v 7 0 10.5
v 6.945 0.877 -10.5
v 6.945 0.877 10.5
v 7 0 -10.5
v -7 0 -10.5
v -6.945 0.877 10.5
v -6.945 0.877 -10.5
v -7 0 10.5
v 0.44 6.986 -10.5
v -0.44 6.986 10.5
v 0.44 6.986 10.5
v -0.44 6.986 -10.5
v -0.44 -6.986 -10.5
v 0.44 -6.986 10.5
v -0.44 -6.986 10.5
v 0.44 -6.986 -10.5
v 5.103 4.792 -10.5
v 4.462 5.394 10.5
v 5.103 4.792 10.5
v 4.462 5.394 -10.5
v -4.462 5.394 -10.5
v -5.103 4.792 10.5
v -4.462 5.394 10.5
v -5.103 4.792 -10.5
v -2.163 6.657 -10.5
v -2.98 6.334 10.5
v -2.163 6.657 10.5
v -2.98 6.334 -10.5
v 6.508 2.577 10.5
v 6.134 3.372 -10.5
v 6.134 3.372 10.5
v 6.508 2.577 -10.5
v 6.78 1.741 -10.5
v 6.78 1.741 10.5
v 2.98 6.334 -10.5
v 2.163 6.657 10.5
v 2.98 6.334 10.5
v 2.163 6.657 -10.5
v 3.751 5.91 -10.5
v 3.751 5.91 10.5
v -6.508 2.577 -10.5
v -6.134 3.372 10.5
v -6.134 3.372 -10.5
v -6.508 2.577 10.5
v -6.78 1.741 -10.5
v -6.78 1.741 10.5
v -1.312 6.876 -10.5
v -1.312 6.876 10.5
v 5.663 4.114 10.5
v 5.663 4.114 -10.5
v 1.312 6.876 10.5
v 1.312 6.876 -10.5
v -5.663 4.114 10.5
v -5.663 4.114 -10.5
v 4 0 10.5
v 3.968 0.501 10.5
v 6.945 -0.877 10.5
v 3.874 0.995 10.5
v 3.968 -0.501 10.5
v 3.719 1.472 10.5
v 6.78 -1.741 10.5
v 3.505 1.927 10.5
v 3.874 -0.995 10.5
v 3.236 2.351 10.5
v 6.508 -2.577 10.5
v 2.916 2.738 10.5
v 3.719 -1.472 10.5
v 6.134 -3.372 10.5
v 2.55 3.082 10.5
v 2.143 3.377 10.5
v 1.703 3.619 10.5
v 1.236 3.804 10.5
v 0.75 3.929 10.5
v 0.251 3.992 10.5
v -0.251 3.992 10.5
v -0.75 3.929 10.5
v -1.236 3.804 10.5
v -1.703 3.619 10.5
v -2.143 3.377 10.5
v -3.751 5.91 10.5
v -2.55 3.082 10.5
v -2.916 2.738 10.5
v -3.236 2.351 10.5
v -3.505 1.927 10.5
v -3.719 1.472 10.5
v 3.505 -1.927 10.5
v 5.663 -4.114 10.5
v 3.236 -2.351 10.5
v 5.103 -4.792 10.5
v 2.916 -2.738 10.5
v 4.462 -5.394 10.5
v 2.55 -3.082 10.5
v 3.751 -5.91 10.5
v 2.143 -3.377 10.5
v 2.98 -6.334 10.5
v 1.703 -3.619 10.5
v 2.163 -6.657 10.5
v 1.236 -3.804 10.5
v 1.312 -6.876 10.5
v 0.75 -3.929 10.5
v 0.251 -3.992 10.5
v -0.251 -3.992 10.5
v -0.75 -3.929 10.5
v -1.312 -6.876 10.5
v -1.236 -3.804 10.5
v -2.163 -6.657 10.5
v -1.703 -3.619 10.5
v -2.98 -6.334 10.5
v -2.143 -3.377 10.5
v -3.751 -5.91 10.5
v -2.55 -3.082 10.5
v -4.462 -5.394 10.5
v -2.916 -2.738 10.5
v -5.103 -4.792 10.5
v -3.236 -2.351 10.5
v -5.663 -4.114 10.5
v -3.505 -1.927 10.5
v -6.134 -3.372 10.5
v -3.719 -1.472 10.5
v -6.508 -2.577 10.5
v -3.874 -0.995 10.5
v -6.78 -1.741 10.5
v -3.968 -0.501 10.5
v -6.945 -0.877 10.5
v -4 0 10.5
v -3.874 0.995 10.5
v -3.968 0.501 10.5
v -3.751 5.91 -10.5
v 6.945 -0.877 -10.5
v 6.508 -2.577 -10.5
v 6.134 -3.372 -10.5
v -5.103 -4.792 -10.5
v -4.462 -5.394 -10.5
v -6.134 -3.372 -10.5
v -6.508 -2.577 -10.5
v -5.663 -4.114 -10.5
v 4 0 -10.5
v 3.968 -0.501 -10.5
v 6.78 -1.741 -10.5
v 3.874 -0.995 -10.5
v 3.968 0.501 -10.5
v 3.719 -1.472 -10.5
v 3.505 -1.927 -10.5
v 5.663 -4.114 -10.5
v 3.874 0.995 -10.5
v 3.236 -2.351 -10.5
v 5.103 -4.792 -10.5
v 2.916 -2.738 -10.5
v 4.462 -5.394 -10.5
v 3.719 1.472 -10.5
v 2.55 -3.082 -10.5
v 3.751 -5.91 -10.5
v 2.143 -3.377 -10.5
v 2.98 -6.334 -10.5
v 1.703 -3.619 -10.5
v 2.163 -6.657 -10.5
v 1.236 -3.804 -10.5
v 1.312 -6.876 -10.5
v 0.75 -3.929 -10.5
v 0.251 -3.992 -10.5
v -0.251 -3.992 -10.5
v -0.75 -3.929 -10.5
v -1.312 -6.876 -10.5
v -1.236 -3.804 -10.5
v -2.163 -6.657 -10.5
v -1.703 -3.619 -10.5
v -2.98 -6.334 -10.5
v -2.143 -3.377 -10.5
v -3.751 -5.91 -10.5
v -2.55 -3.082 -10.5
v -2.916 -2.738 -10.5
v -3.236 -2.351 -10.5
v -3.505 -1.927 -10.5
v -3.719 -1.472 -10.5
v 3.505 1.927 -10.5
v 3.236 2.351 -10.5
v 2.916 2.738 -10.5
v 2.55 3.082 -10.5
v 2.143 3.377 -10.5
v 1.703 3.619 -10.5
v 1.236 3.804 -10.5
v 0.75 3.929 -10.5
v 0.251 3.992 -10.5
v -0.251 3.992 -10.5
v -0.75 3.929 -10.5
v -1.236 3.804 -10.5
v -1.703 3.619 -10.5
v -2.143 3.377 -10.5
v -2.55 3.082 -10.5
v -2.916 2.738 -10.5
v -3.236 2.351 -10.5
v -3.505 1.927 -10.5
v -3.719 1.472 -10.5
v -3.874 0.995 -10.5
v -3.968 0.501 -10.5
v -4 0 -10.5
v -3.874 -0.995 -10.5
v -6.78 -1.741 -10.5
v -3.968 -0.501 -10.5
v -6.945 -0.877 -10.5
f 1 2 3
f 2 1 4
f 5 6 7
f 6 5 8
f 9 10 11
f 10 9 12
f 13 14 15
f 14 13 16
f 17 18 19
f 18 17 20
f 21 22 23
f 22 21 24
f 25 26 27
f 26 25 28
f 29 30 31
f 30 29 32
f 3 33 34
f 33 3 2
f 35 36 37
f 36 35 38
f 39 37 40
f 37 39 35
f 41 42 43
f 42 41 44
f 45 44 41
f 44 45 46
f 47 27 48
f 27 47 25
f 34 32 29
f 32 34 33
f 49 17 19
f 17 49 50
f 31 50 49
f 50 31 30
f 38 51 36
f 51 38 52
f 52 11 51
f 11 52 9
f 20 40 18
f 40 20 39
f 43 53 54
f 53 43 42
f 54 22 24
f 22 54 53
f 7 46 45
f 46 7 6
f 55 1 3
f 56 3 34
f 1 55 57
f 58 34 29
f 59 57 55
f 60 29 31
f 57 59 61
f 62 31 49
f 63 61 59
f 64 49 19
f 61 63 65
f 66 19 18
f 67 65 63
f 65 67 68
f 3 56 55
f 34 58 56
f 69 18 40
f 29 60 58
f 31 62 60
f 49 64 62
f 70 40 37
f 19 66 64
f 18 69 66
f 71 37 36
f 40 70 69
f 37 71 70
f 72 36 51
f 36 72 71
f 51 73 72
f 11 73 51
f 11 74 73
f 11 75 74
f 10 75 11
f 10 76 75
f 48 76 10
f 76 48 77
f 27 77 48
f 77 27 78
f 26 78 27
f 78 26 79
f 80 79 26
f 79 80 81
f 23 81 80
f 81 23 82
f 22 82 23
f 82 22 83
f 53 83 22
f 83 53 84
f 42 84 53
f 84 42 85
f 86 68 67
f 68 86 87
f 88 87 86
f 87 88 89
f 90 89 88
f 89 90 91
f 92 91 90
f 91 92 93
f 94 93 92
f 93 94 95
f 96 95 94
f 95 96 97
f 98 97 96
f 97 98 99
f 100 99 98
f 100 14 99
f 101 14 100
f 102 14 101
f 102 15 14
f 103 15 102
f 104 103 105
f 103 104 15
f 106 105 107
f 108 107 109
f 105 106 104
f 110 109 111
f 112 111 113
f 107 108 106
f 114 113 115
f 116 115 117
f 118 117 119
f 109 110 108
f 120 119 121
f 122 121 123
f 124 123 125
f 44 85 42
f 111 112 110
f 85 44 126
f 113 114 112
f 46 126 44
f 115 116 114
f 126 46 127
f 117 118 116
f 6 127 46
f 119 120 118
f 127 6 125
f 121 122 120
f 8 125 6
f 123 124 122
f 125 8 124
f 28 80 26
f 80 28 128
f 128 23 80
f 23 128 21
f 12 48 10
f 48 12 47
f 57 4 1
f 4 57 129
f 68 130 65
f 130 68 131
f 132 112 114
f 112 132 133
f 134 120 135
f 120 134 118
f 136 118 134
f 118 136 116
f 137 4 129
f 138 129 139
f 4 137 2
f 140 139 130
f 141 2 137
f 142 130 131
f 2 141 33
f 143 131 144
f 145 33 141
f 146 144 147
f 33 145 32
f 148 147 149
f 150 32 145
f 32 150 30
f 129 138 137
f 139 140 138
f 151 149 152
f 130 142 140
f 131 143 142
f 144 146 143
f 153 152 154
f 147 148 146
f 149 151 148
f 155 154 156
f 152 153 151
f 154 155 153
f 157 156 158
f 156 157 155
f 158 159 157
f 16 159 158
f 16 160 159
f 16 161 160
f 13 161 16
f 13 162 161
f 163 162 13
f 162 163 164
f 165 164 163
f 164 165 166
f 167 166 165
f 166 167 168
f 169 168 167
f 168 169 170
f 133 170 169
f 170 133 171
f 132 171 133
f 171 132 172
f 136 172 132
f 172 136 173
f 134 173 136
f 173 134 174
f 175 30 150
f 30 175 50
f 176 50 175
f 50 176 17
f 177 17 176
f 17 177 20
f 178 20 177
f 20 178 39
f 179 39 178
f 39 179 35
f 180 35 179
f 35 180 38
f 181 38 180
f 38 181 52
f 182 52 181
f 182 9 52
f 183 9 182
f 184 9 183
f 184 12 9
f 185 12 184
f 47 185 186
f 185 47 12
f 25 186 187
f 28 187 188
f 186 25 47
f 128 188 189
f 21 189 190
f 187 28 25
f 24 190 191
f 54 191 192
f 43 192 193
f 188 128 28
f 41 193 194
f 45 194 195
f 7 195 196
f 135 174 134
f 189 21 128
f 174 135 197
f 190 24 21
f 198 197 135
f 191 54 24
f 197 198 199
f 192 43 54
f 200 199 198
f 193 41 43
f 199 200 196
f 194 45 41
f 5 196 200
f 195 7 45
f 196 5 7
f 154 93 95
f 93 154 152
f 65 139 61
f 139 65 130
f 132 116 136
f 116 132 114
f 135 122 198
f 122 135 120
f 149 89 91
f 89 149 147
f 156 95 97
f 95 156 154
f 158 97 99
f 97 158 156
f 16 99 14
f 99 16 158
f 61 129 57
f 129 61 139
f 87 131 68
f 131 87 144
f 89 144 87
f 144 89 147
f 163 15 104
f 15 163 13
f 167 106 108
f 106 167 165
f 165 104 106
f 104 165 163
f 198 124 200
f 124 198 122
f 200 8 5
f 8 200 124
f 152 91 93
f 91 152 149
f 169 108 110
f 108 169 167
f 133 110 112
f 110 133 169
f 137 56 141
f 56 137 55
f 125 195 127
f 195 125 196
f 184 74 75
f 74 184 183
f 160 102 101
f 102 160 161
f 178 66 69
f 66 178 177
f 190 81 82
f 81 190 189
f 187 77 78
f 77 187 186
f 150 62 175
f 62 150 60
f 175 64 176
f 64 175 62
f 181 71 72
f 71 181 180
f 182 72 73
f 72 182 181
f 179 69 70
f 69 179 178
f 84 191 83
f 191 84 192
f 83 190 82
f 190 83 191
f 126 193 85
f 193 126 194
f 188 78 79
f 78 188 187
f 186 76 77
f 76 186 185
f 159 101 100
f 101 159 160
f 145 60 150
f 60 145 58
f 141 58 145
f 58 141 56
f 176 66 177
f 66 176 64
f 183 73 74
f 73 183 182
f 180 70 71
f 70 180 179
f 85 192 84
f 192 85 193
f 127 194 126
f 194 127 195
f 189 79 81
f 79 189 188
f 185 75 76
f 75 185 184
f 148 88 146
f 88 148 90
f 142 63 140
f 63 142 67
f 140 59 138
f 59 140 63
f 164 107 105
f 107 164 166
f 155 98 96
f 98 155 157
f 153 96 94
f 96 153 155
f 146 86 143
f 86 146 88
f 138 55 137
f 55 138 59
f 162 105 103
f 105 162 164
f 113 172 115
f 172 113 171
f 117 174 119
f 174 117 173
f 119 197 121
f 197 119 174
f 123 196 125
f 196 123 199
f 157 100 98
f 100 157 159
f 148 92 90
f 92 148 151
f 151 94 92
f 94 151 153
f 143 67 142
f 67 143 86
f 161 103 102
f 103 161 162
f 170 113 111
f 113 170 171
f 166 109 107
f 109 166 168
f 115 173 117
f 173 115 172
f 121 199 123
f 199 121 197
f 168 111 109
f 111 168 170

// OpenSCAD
$fn = 50;


difference() {
	union() {
		translate(v = [0, 0, -10.5000000000]) {
			cylinder(h = 21, r = 7.0000000000);
		}
	}
	union() {
		translate(v = [0, 0, -100.0000000000]) {
			cylinder(h = 200, r = 4);
		}
	}
}
